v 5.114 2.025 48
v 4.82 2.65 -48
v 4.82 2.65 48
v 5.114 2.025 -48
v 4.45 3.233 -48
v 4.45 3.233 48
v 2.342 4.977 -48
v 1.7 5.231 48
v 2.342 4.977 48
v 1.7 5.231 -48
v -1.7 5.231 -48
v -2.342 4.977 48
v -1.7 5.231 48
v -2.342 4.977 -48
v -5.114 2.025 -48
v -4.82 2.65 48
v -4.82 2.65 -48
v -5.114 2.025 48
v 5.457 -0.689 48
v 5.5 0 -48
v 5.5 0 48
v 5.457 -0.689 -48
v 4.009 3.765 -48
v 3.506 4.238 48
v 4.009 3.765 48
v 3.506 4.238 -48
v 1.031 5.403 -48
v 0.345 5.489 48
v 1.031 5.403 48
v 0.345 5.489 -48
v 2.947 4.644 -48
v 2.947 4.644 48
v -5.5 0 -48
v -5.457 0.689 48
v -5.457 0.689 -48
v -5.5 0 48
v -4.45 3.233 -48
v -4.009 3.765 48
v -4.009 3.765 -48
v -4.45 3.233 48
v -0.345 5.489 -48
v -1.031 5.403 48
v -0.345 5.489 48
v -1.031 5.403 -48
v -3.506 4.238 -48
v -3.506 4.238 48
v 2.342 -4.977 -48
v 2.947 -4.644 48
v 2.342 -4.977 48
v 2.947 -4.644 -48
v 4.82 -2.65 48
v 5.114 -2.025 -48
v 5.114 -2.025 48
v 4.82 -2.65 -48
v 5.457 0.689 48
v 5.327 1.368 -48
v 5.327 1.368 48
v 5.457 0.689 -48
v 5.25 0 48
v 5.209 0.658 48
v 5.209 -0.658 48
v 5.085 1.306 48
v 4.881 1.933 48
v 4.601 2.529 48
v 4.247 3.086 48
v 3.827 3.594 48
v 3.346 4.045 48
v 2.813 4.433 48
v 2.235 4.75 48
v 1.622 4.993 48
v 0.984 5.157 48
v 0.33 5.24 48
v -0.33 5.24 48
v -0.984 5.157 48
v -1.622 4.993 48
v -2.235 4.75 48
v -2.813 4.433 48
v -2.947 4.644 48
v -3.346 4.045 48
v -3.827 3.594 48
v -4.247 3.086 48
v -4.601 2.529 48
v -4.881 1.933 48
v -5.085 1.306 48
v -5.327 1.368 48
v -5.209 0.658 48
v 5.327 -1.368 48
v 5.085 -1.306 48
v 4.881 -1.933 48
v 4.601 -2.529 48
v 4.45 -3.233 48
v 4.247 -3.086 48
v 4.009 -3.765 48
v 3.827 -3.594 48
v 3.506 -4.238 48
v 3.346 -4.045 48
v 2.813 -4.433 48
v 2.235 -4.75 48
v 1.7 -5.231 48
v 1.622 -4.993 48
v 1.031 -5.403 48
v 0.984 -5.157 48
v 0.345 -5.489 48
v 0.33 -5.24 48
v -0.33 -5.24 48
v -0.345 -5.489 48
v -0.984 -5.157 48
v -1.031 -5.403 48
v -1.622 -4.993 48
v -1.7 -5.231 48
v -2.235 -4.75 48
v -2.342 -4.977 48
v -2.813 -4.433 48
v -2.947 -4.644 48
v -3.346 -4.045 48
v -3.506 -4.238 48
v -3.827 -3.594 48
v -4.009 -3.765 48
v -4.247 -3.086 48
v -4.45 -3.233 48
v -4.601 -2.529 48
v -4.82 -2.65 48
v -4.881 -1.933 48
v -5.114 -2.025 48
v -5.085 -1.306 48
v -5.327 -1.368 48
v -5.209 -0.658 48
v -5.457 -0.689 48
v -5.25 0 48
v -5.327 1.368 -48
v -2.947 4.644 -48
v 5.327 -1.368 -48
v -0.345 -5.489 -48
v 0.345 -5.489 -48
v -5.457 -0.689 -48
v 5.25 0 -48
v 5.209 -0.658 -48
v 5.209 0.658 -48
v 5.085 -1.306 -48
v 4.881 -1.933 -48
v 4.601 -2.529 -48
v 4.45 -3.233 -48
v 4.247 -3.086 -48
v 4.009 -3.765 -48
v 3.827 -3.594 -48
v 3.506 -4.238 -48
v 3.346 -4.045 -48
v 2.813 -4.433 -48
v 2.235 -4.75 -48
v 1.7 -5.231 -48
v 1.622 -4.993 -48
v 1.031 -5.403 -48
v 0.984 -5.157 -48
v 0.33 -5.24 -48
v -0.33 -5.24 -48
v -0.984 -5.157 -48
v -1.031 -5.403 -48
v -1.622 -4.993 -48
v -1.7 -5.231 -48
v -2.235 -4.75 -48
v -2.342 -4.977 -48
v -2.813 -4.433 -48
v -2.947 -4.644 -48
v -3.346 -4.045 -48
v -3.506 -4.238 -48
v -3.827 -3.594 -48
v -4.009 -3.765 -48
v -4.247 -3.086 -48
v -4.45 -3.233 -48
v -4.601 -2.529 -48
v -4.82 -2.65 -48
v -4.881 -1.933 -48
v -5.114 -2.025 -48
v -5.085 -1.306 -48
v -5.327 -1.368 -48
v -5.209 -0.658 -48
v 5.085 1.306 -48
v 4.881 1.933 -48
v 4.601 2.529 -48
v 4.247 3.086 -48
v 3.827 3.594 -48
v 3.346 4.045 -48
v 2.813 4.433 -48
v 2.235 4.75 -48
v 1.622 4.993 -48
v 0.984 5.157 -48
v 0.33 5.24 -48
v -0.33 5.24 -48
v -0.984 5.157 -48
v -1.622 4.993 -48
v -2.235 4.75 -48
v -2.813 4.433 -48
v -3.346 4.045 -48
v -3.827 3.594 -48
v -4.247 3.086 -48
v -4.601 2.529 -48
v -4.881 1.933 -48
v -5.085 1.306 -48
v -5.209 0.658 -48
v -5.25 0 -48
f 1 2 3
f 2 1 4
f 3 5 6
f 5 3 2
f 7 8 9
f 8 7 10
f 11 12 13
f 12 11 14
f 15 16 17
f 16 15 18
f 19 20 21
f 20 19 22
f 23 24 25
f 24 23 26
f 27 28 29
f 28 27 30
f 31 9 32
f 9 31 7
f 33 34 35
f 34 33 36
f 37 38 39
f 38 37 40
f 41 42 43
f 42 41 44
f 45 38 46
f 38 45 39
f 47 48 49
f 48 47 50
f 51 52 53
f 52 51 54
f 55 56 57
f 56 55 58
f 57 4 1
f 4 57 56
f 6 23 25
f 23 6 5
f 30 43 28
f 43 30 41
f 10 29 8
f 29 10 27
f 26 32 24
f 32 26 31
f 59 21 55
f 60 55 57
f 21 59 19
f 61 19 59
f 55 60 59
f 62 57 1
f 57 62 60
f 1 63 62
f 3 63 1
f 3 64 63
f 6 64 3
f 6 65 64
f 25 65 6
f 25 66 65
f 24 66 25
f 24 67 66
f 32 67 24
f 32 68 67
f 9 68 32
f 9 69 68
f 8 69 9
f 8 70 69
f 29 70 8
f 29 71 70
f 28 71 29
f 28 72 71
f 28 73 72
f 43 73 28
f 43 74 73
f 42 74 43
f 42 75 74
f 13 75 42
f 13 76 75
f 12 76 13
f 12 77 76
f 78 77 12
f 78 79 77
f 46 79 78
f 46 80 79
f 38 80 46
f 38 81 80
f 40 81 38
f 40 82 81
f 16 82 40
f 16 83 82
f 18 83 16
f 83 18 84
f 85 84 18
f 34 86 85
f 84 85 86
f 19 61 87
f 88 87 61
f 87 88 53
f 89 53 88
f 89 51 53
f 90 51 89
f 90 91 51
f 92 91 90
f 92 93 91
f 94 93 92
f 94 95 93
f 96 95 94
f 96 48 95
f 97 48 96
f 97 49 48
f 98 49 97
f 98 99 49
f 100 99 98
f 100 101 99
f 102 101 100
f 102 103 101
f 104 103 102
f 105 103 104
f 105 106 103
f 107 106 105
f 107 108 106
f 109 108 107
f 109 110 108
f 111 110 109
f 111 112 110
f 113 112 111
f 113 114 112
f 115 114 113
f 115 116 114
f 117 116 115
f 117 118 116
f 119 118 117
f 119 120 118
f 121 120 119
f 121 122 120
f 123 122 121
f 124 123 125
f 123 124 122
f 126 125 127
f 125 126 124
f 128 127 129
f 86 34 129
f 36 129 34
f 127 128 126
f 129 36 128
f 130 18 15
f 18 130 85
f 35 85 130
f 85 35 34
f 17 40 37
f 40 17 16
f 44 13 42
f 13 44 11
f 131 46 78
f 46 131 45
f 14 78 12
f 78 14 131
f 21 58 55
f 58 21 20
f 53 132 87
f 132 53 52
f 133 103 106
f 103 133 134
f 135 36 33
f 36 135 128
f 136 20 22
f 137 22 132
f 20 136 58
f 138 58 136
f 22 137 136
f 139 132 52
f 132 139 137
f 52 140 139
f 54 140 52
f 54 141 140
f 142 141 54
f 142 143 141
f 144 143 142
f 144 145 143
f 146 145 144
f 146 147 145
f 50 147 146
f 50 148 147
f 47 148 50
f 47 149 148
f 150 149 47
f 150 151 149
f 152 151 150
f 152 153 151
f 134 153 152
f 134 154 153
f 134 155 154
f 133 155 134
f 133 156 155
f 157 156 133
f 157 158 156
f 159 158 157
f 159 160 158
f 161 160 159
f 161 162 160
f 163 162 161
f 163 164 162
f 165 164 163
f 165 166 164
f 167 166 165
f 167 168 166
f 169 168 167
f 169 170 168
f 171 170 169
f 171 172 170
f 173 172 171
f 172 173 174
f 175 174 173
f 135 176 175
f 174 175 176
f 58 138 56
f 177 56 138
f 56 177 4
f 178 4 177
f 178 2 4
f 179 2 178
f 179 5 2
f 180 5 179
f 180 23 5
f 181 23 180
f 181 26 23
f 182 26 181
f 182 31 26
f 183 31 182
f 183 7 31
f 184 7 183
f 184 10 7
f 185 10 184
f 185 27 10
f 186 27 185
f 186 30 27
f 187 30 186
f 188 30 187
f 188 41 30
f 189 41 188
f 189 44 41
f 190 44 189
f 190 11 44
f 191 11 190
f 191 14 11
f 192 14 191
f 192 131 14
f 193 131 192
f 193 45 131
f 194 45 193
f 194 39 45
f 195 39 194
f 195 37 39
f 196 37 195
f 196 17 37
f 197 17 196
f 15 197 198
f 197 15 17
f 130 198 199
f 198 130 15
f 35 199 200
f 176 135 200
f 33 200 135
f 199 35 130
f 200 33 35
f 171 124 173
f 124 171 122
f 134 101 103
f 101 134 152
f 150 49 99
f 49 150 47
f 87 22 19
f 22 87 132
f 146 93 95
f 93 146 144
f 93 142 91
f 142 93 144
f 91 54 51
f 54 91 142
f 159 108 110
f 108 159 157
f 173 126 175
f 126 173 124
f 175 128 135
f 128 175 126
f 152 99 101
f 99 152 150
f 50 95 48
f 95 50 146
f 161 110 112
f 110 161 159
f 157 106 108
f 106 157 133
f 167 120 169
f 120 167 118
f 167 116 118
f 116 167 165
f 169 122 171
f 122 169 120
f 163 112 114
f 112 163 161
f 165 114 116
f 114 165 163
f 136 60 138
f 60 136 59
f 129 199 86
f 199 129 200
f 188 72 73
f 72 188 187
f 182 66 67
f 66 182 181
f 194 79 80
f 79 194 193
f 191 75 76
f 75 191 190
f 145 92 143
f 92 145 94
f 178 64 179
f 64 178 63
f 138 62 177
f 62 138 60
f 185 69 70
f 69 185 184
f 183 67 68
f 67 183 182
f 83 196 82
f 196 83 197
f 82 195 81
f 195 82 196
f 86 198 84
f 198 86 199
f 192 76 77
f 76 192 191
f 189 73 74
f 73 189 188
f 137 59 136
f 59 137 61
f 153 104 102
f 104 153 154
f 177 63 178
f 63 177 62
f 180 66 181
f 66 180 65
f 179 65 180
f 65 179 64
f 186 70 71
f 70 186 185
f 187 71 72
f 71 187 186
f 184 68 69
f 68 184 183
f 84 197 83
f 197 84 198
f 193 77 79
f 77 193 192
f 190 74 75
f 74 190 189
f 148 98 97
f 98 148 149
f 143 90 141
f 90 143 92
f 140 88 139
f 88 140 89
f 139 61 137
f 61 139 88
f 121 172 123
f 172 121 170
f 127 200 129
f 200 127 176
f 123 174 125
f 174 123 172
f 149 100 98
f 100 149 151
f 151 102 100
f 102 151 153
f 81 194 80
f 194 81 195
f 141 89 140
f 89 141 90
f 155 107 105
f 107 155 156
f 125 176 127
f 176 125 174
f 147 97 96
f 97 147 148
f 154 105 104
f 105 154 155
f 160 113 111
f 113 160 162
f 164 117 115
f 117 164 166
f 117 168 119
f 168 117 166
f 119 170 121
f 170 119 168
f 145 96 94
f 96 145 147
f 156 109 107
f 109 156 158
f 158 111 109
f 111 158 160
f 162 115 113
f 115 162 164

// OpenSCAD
$fn = 50;


difference() {
	union() {
		translate(v = [0, 0, -48.0000000000]) {
			cylinder(h = 96, r = 5.5000000000);
		}
	}
	union() {
		translate(v = [0, 0, -100.0000000000]) {
			cylinder(h = 200, r = 5.2500000000);
		}
	}
}
